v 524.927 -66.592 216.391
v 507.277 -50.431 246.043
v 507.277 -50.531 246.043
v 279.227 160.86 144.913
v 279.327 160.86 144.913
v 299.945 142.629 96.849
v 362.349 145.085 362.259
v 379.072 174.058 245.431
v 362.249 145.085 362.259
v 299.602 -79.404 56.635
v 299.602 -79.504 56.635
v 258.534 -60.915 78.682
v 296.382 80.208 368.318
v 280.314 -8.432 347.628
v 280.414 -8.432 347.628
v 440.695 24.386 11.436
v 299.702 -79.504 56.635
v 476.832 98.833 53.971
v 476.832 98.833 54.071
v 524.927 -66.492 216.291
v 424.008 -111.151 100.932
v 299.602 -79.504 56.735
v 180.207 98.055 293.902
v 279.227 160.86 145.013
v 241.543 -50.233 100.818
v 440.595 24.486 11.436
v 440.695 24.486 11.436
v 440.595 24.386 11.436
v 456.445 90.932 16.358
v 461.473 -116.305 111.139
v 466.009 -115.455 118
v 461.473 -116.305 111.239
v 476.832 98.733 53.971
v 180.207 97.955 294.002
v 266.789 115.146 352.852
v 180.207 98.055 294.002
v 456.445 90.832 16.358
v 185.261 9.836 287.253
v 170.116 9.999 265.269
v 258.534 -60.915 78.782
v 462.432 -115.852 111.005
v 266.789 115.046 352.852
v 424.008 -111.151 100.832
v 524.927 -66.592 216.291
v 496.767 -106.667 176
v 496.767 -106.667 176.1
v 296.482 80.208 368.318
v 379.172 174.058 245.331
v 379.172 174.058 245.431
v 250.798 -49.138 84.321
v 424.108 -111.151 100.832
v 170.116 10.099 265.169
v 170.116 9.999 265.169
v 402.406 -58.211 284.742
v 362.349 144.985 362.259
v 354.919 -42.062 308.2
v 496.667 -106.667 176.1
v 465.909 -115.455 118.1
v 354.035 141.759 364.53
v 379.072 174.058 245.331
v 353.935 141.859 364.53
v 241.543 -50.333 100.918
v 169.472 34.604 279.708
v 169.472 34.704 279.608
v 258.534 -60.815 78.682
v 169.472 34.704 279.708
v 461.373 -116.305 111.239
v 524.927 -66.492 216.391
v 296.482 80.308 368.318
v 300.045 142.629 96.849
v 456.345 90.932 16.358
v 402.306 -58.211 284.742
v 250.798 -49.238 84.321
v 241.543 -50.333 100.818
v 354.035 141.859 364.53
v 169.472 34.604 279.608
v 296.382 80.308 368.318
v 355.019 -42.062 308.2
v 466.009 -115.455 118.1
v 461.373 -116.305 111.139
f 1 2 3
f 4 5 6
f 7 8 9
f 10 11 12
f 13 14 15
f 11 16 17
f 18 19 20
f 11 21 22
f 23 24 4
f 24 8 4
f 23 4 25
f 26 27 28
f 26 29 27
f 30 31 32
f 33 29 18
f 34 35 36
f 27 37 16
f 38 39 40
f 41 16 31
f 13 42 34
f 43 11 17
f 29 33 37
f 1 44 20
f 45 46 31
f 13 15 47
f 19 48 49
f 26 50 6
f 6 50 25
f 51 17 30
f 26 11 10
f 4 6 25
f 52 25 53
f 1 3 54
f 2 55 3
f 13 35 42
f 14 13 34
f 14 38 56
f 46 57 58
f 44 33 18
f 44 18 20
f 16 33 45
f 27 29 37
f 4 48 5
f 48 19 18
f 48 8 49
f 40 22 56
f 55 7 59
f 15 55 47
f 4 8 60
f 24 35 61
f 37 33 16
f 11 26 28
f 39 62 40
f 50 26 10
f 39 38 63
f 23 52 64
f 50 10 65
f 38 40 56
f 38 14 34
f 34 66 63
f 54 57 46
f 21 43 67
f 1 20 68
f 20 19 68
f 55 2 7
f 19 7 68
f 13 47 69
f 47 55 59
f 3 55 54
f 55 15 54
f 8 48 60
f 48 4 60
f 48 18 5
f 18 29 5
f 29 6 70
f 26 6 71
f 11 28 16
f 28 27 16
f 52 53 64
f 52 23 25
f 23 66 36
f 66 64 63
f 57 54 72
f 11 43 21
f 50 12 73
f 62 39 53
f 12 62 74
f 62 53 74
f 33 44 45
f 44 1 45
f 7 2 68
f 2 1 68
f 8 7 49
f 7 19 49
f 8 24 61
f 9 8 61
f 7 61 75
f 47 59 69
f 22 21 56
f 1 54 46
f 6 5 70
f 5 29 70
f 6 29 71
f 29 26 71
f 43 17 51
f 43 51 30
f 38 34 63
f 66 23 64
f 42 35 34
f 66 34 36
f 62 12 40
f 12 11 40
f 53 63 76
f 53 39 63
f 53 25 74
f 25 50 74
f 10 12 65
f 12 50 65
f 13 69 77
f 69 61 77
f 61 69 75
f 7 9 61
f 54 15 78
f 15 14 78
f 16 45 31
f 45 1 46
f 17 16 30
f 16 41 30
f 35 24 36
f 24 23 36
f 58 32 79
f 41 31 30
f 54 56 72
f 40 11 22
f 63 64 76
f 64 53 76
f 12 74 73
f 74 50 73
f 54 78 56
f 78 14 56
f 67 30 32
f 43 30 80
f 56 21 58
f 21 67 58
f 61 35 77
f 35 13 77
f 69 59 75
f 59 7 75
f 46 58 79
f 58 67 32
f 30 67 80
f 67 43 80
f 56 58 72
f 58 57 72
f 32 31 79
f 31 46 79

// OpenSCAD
hull(){ translate([456.345241859,90.8314890926,16.3578880809])cube(0.1,0.1,0.1);
translate([299.9445629,142.528784648,96.8486140725])cube(0.1,0.1,0.1);
translate([180.206618909,97.9551240305,293.90207803])cube(0.1,0.1,0.1);
translate([279.227344992,160.759936407,144.912559618])cube(0.1,0.1,0.1);
translate([169.472046175,34.6044590312,279.607854233])cube(0.1,0.1,0.1);
translate([170.116424637,9.99874812218,265.169003505])cube(0.1,0.1,0.1);
translate([185.260617761,9.83590733591,287.152509653])cube(0.1,0.1,0.1);
translate([280.313927686,-8.43166688422,347.52839055])cube(0.1,0.1,0.1);
translate([250.79840576,-49.2375932116,84.3211622525])cube(0.1,0.1,0.1);
translate([241.543271636,-50.3326663332,100.817908954])cube(0.1,0.1,0.1);
translate([258.533568905,-60.9151943463,78.6819787986])cube(0.1,0.1,0.1);
translate([379.072289157,173.957831325,245.331325301])cube(0.1,0.1,0.1);
translate([362.249146758,144.984641638,362.158703072])cube(0.1,0.1,0.1);
translate([476.73210893,98.7333755541,53.9708676377])cube(0.1,0.1,0.1);
translate([524.826904055,-66.5924826904,216.290801187])cube(0.1,0.1,0.1);
translate([507.17662226,-50.530726257,245.943274602])cube(0.1,0.1,0.1);
translate([440.595181861,24.3859234766,11.4359943316])cube(0.1,0.1,0.1);
translate([462.332058984,-115.851993446,111.004915347])cube(0.1,0.1,0.1);
translate([299.601769912,-79.5039590126,56.6348393107])cube(0.1,0.1,0.1);
translate([354.919137466,-42.0619946092,308.099730458])cube(0.1,0.1,0.1);
translate([402.306344881,-58.2113662904,284.641884002])cube(0.1,0.1,0.1);
translate([465.909090909,-115.454545455,118.0])cube(0.1,0.1,0.1);
translate([496.666666667,-106.666666667,176.0])cube(0.1,0.1,0.1);
translate([461.373198286,-116.305025321,111.139462407])cube(0.1,0.1,0.1);
translate([424.008403361,-111.151260504,100.831932773])cube(0.1,0.1,0.1);
translate([266.788990826,115.04587156,352.752293578])cube(0.1,0.1,0.1);
translate([296.382485631,80.207959953,368.217971695])cube(0.1,0.1,0.1);
translate([353.935434929,141.759103169,364.430209036])cube(0.1,0.1,0.1); }
